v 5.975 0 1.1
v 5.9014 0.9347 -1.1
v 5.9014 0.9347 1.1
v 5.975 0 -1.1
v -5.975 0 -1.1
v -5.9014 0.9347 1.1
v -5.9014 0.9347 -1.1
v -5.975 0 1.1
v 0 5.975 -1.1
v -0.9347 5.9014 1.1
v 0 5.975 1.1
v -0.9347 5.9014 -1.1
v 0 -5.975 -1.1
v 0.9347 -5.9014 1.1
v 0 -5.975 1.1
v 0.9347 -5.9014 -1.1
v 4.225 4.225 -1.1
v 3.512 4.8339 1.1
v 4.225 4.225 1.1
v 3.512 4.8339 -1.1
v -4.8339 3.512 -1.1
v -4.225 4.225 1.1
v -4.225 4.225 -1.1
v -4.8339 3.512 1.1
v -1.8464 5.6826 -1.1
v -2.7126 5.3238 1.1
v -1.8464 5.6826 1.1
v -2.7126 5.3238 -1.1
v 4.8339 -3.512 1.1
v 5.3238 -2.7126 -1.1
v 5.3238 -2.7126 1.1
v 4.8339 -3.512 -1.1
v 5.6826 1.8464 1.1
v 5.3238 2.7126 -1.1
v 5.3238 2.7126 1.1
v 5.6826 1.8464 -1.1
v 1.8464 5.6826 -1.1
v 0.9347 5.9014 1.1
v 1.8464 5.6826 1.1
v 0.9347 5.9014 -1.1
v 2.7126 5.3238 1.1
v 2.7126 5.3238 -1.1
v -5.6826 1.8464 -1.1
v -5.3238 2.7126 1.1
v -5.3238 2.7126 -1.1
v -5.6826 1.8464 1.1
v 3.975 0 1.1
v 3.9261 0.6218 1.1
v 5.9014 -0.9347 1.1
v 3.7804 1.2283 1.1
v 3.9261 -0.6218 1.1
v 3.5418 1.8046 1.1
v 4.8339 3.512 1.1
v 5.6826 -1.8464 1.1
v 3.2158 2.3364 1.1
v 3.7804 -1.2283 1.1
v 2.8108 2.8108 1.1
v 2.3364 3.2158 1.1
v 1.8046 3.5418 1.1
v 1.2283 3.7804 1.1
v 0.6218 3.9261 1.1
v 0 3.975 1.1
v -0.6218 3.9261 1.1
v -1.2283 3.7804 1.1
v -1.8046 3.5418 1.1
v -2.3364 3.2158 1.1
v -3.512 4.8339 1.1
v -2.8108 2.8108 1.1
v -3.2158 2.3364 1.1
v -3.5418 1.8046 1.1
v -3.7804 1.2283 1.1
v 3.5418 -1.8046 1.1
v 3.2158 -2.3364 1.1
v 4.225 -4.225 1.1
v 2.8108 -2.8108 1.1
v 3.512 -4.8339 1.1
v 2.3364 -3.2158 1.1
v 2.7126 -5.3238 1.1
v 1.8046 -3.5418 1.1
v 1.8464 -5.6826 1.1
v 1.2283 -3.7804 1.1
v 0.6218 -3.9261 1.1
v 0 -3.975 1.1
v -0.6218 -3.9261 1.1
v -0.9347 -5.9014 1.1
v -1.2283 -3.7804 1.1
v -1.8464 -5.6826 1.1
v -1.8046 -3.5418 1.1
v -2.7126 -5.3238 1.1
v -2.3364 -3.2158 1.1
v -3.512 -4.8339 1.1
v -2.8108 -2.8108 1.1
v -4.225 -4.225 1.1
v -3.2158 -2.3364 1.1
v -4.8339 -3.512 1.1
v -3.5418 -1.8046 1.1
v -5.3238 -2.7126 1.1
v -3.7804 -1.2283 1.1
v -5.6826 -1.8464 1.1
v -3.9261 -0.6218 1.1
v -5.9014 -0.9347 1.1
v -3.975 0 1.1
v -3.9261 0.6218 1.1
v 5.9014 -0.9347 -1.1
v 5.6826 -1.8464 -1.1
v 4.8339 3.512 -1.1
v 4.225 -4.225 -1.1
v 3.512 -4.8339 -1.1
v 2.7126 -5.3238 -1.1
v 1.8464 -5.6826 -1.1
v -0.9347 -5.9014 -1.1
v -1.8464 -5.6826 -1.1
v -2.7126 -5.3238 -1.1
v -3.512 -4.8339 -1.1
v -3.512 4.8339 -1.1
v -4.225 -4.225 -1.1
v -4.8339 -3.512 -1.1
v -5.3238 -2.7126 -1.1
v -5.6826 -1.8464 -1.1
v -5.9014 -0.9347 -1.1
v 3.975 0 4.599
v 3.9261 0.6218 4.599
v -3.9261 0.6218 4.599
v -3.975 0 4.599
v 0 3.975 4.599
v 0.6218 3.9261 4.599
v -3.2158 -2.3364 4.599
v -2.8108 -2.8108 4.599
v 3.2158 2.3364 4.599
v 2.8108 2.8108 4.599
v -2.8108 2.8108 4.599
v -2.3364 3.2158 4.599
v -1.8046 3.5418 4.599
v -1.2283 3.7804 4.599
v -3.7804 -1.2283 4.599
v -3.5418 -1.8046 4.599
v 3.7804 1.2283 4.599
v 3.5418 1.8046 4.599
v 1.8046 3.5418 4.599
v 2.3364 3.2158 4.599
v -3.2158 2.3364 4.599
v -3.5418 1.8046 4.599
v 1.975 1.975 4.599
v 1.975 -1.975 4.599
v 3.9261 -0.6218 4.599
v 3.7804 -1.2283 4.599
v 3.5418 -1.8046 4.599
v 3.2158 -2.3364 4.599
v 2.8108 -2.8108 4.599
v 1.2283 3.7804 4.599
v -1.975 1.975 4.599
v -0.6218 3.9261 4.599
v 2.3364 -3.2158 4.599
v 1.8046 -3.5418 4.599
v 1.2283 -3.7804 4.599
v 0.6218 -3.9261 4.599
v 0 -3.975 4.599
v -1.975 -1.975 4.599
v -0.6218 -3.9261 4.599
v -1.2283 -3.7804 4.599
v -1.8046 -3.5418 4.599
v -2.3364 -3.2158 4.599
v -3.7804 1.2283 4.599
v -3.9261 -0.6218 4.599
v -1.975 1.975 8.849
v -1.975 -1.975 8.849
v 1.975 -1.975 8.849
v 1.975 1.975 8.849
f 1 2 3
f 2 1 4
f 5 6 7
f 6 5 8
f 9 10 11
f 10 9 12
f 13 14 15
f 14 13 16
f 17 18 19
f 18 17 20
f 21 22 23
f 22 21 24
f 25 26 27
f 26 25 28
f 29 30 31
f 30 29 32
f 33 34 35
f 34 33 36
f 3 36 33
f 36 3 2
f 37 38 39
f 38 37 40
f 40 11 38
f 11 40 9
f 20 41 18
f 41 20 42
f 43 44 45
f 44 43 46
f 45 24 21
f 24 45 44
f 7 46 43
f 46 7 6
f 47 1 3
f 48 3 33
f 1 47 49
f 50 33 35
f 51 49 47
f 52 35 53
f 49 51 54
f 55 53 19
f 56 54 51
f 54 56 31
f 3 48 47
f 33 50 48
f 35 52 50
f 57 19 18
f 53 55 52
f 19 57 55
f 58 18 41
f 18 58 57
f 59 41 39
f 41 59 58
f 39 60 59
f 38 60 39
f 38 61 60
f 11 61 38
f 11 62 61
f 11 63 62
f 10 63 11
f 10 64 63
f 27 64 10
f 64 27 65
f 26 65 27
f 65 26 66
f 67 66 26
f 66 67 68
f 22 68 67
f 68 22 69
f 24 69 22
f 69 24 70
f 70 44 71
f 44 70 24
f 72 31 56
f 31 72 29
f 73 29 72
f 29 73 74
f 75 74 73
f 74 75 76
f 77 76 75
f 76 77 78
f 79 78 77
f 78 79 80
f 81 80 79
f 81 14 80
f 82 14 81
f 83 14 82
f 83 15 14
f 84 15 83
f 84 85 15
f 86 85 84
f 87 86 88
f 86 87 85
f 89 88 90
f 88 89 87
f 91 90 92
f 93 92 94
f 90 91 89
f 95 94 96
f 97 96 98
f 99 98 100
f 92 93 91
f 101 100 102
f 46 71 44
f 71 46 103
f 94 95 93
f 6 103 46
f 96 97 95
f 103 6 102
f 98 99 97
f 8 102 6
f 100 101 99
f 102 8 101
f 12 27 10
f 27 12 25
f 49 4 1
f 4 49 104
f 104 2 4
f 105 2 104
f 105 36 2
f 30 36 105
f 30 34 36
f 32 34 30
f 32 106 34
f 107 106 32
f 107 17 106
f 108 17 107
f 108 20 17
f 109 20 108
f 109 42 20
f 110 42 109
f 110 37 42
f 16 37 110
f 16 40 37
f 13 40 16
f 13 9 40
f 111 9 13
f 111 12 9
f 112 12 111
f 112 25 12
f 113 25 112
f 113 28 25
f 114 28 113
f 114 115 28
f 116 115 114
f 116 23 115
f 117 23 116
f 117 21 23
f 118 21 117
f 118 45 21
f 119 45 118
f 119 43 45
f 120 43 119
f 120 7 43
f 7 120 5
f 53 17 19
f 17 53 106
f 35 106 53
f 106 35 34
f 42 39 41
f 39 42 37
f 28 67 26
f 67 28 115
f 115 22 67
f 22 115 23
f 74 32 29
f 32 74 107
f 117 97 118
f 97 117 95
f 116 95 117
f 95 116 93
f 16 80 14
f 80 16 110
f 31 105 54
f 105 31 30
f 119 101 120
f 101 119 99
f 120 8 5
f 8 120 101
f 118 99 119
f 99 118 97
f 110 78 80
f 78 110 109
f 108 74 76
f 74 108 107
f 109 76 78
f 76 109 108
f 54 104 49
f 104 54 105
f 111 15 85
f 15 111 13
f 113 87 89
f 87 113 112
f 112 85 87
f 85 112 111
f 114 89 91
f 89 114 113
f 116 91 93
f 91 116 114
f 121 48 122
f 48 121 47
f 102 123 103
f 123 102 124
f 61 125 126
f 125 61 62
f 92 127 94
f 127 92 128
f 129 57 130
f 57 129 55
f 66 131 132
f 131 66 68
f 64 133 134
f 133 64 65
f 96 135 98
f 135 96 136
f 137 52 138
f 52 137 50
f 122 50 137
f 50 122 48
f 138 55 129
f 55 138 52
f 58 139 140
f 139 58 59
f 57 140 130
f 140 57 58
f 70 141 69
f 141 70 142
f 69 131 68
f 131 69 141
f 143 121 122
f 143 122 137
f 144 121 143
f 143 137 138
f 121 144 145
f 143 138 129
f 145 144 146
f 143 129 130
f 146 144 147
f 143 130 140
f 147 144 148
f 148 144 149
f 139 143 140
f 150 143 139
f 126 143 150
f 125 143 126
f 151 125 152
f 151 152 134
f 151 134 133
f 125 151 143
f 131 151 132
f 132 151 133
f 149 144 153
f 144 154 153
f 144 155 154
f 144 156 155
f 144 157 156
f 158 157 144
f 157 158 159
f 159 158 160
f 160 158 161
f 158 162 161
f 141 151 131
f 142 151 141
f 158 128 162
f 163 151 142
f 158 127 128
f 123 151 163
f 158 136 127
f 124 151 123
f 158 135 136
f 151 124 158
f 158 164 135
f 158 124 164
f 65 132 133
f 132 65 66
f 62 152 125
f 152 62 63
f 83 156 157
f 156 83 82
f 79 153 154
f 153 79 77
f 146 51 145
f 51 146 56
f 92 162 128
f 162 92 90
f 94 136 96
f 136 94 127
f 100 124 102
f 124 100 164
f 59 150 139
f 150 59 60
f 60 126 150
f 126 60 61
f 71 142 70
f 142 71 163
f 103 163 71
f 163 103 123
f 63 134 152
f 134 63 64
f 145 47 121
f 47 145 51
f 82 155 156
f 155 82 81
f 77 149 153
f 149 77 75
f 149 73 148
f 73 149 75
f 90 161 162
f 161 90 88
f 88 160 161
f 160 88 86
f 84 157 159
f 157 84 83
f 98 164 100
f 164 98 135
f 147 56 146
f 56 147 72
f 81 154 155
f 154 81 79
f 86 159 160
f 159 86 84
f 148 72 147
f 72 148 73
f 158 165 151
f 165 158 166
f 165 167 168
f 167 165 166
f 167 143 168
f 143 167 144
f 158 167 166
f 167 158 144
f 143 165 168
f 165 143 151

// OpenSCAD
//This is an openscad part used in a modified version of perseverance.
//This version is optimized to use a lasercut base using 3mm thick material

//render
gear_axle();

//===========Geometry============
clearance = 0.05;//mm - clearance to undersize the parts

d_head = 12-clearance; //mm - diameter of the cap of the axle pin
t_head = 2.2; //mm - thickness of the cap
d_collar = 8-clearance; //mm - diameter of the bearing surface of the pin
t_collar = 3.5; //mm - thickness of the bearing surface
l_pen = 4-clearance; //mm - length of the side of the square pin
t_pen = 4.25; //mm - the thickness of the square pin

fudge = 0.001; //mm - use this value to make sure surfaces aren't coincident
//===========Modules=============
module gear_axle(){
    //build the axle pin with the head on the bottom
    union(){
        //add cap
        cylinder(r = d_head/2, h= t_head, center = true, $fn = 40);
        //add collar
        translate([0,0,(t_head+t_collar)/2-fudge])
        cylinder(r = d_collar/2, h= t_collar, center = true, $fn=40);
        //add pin
        translate([0,0,(t_head+t_pen)/2+t_collar-fudge])
        cube([l_pen,l_pen,t_pen], center = true);
    }
    
}
